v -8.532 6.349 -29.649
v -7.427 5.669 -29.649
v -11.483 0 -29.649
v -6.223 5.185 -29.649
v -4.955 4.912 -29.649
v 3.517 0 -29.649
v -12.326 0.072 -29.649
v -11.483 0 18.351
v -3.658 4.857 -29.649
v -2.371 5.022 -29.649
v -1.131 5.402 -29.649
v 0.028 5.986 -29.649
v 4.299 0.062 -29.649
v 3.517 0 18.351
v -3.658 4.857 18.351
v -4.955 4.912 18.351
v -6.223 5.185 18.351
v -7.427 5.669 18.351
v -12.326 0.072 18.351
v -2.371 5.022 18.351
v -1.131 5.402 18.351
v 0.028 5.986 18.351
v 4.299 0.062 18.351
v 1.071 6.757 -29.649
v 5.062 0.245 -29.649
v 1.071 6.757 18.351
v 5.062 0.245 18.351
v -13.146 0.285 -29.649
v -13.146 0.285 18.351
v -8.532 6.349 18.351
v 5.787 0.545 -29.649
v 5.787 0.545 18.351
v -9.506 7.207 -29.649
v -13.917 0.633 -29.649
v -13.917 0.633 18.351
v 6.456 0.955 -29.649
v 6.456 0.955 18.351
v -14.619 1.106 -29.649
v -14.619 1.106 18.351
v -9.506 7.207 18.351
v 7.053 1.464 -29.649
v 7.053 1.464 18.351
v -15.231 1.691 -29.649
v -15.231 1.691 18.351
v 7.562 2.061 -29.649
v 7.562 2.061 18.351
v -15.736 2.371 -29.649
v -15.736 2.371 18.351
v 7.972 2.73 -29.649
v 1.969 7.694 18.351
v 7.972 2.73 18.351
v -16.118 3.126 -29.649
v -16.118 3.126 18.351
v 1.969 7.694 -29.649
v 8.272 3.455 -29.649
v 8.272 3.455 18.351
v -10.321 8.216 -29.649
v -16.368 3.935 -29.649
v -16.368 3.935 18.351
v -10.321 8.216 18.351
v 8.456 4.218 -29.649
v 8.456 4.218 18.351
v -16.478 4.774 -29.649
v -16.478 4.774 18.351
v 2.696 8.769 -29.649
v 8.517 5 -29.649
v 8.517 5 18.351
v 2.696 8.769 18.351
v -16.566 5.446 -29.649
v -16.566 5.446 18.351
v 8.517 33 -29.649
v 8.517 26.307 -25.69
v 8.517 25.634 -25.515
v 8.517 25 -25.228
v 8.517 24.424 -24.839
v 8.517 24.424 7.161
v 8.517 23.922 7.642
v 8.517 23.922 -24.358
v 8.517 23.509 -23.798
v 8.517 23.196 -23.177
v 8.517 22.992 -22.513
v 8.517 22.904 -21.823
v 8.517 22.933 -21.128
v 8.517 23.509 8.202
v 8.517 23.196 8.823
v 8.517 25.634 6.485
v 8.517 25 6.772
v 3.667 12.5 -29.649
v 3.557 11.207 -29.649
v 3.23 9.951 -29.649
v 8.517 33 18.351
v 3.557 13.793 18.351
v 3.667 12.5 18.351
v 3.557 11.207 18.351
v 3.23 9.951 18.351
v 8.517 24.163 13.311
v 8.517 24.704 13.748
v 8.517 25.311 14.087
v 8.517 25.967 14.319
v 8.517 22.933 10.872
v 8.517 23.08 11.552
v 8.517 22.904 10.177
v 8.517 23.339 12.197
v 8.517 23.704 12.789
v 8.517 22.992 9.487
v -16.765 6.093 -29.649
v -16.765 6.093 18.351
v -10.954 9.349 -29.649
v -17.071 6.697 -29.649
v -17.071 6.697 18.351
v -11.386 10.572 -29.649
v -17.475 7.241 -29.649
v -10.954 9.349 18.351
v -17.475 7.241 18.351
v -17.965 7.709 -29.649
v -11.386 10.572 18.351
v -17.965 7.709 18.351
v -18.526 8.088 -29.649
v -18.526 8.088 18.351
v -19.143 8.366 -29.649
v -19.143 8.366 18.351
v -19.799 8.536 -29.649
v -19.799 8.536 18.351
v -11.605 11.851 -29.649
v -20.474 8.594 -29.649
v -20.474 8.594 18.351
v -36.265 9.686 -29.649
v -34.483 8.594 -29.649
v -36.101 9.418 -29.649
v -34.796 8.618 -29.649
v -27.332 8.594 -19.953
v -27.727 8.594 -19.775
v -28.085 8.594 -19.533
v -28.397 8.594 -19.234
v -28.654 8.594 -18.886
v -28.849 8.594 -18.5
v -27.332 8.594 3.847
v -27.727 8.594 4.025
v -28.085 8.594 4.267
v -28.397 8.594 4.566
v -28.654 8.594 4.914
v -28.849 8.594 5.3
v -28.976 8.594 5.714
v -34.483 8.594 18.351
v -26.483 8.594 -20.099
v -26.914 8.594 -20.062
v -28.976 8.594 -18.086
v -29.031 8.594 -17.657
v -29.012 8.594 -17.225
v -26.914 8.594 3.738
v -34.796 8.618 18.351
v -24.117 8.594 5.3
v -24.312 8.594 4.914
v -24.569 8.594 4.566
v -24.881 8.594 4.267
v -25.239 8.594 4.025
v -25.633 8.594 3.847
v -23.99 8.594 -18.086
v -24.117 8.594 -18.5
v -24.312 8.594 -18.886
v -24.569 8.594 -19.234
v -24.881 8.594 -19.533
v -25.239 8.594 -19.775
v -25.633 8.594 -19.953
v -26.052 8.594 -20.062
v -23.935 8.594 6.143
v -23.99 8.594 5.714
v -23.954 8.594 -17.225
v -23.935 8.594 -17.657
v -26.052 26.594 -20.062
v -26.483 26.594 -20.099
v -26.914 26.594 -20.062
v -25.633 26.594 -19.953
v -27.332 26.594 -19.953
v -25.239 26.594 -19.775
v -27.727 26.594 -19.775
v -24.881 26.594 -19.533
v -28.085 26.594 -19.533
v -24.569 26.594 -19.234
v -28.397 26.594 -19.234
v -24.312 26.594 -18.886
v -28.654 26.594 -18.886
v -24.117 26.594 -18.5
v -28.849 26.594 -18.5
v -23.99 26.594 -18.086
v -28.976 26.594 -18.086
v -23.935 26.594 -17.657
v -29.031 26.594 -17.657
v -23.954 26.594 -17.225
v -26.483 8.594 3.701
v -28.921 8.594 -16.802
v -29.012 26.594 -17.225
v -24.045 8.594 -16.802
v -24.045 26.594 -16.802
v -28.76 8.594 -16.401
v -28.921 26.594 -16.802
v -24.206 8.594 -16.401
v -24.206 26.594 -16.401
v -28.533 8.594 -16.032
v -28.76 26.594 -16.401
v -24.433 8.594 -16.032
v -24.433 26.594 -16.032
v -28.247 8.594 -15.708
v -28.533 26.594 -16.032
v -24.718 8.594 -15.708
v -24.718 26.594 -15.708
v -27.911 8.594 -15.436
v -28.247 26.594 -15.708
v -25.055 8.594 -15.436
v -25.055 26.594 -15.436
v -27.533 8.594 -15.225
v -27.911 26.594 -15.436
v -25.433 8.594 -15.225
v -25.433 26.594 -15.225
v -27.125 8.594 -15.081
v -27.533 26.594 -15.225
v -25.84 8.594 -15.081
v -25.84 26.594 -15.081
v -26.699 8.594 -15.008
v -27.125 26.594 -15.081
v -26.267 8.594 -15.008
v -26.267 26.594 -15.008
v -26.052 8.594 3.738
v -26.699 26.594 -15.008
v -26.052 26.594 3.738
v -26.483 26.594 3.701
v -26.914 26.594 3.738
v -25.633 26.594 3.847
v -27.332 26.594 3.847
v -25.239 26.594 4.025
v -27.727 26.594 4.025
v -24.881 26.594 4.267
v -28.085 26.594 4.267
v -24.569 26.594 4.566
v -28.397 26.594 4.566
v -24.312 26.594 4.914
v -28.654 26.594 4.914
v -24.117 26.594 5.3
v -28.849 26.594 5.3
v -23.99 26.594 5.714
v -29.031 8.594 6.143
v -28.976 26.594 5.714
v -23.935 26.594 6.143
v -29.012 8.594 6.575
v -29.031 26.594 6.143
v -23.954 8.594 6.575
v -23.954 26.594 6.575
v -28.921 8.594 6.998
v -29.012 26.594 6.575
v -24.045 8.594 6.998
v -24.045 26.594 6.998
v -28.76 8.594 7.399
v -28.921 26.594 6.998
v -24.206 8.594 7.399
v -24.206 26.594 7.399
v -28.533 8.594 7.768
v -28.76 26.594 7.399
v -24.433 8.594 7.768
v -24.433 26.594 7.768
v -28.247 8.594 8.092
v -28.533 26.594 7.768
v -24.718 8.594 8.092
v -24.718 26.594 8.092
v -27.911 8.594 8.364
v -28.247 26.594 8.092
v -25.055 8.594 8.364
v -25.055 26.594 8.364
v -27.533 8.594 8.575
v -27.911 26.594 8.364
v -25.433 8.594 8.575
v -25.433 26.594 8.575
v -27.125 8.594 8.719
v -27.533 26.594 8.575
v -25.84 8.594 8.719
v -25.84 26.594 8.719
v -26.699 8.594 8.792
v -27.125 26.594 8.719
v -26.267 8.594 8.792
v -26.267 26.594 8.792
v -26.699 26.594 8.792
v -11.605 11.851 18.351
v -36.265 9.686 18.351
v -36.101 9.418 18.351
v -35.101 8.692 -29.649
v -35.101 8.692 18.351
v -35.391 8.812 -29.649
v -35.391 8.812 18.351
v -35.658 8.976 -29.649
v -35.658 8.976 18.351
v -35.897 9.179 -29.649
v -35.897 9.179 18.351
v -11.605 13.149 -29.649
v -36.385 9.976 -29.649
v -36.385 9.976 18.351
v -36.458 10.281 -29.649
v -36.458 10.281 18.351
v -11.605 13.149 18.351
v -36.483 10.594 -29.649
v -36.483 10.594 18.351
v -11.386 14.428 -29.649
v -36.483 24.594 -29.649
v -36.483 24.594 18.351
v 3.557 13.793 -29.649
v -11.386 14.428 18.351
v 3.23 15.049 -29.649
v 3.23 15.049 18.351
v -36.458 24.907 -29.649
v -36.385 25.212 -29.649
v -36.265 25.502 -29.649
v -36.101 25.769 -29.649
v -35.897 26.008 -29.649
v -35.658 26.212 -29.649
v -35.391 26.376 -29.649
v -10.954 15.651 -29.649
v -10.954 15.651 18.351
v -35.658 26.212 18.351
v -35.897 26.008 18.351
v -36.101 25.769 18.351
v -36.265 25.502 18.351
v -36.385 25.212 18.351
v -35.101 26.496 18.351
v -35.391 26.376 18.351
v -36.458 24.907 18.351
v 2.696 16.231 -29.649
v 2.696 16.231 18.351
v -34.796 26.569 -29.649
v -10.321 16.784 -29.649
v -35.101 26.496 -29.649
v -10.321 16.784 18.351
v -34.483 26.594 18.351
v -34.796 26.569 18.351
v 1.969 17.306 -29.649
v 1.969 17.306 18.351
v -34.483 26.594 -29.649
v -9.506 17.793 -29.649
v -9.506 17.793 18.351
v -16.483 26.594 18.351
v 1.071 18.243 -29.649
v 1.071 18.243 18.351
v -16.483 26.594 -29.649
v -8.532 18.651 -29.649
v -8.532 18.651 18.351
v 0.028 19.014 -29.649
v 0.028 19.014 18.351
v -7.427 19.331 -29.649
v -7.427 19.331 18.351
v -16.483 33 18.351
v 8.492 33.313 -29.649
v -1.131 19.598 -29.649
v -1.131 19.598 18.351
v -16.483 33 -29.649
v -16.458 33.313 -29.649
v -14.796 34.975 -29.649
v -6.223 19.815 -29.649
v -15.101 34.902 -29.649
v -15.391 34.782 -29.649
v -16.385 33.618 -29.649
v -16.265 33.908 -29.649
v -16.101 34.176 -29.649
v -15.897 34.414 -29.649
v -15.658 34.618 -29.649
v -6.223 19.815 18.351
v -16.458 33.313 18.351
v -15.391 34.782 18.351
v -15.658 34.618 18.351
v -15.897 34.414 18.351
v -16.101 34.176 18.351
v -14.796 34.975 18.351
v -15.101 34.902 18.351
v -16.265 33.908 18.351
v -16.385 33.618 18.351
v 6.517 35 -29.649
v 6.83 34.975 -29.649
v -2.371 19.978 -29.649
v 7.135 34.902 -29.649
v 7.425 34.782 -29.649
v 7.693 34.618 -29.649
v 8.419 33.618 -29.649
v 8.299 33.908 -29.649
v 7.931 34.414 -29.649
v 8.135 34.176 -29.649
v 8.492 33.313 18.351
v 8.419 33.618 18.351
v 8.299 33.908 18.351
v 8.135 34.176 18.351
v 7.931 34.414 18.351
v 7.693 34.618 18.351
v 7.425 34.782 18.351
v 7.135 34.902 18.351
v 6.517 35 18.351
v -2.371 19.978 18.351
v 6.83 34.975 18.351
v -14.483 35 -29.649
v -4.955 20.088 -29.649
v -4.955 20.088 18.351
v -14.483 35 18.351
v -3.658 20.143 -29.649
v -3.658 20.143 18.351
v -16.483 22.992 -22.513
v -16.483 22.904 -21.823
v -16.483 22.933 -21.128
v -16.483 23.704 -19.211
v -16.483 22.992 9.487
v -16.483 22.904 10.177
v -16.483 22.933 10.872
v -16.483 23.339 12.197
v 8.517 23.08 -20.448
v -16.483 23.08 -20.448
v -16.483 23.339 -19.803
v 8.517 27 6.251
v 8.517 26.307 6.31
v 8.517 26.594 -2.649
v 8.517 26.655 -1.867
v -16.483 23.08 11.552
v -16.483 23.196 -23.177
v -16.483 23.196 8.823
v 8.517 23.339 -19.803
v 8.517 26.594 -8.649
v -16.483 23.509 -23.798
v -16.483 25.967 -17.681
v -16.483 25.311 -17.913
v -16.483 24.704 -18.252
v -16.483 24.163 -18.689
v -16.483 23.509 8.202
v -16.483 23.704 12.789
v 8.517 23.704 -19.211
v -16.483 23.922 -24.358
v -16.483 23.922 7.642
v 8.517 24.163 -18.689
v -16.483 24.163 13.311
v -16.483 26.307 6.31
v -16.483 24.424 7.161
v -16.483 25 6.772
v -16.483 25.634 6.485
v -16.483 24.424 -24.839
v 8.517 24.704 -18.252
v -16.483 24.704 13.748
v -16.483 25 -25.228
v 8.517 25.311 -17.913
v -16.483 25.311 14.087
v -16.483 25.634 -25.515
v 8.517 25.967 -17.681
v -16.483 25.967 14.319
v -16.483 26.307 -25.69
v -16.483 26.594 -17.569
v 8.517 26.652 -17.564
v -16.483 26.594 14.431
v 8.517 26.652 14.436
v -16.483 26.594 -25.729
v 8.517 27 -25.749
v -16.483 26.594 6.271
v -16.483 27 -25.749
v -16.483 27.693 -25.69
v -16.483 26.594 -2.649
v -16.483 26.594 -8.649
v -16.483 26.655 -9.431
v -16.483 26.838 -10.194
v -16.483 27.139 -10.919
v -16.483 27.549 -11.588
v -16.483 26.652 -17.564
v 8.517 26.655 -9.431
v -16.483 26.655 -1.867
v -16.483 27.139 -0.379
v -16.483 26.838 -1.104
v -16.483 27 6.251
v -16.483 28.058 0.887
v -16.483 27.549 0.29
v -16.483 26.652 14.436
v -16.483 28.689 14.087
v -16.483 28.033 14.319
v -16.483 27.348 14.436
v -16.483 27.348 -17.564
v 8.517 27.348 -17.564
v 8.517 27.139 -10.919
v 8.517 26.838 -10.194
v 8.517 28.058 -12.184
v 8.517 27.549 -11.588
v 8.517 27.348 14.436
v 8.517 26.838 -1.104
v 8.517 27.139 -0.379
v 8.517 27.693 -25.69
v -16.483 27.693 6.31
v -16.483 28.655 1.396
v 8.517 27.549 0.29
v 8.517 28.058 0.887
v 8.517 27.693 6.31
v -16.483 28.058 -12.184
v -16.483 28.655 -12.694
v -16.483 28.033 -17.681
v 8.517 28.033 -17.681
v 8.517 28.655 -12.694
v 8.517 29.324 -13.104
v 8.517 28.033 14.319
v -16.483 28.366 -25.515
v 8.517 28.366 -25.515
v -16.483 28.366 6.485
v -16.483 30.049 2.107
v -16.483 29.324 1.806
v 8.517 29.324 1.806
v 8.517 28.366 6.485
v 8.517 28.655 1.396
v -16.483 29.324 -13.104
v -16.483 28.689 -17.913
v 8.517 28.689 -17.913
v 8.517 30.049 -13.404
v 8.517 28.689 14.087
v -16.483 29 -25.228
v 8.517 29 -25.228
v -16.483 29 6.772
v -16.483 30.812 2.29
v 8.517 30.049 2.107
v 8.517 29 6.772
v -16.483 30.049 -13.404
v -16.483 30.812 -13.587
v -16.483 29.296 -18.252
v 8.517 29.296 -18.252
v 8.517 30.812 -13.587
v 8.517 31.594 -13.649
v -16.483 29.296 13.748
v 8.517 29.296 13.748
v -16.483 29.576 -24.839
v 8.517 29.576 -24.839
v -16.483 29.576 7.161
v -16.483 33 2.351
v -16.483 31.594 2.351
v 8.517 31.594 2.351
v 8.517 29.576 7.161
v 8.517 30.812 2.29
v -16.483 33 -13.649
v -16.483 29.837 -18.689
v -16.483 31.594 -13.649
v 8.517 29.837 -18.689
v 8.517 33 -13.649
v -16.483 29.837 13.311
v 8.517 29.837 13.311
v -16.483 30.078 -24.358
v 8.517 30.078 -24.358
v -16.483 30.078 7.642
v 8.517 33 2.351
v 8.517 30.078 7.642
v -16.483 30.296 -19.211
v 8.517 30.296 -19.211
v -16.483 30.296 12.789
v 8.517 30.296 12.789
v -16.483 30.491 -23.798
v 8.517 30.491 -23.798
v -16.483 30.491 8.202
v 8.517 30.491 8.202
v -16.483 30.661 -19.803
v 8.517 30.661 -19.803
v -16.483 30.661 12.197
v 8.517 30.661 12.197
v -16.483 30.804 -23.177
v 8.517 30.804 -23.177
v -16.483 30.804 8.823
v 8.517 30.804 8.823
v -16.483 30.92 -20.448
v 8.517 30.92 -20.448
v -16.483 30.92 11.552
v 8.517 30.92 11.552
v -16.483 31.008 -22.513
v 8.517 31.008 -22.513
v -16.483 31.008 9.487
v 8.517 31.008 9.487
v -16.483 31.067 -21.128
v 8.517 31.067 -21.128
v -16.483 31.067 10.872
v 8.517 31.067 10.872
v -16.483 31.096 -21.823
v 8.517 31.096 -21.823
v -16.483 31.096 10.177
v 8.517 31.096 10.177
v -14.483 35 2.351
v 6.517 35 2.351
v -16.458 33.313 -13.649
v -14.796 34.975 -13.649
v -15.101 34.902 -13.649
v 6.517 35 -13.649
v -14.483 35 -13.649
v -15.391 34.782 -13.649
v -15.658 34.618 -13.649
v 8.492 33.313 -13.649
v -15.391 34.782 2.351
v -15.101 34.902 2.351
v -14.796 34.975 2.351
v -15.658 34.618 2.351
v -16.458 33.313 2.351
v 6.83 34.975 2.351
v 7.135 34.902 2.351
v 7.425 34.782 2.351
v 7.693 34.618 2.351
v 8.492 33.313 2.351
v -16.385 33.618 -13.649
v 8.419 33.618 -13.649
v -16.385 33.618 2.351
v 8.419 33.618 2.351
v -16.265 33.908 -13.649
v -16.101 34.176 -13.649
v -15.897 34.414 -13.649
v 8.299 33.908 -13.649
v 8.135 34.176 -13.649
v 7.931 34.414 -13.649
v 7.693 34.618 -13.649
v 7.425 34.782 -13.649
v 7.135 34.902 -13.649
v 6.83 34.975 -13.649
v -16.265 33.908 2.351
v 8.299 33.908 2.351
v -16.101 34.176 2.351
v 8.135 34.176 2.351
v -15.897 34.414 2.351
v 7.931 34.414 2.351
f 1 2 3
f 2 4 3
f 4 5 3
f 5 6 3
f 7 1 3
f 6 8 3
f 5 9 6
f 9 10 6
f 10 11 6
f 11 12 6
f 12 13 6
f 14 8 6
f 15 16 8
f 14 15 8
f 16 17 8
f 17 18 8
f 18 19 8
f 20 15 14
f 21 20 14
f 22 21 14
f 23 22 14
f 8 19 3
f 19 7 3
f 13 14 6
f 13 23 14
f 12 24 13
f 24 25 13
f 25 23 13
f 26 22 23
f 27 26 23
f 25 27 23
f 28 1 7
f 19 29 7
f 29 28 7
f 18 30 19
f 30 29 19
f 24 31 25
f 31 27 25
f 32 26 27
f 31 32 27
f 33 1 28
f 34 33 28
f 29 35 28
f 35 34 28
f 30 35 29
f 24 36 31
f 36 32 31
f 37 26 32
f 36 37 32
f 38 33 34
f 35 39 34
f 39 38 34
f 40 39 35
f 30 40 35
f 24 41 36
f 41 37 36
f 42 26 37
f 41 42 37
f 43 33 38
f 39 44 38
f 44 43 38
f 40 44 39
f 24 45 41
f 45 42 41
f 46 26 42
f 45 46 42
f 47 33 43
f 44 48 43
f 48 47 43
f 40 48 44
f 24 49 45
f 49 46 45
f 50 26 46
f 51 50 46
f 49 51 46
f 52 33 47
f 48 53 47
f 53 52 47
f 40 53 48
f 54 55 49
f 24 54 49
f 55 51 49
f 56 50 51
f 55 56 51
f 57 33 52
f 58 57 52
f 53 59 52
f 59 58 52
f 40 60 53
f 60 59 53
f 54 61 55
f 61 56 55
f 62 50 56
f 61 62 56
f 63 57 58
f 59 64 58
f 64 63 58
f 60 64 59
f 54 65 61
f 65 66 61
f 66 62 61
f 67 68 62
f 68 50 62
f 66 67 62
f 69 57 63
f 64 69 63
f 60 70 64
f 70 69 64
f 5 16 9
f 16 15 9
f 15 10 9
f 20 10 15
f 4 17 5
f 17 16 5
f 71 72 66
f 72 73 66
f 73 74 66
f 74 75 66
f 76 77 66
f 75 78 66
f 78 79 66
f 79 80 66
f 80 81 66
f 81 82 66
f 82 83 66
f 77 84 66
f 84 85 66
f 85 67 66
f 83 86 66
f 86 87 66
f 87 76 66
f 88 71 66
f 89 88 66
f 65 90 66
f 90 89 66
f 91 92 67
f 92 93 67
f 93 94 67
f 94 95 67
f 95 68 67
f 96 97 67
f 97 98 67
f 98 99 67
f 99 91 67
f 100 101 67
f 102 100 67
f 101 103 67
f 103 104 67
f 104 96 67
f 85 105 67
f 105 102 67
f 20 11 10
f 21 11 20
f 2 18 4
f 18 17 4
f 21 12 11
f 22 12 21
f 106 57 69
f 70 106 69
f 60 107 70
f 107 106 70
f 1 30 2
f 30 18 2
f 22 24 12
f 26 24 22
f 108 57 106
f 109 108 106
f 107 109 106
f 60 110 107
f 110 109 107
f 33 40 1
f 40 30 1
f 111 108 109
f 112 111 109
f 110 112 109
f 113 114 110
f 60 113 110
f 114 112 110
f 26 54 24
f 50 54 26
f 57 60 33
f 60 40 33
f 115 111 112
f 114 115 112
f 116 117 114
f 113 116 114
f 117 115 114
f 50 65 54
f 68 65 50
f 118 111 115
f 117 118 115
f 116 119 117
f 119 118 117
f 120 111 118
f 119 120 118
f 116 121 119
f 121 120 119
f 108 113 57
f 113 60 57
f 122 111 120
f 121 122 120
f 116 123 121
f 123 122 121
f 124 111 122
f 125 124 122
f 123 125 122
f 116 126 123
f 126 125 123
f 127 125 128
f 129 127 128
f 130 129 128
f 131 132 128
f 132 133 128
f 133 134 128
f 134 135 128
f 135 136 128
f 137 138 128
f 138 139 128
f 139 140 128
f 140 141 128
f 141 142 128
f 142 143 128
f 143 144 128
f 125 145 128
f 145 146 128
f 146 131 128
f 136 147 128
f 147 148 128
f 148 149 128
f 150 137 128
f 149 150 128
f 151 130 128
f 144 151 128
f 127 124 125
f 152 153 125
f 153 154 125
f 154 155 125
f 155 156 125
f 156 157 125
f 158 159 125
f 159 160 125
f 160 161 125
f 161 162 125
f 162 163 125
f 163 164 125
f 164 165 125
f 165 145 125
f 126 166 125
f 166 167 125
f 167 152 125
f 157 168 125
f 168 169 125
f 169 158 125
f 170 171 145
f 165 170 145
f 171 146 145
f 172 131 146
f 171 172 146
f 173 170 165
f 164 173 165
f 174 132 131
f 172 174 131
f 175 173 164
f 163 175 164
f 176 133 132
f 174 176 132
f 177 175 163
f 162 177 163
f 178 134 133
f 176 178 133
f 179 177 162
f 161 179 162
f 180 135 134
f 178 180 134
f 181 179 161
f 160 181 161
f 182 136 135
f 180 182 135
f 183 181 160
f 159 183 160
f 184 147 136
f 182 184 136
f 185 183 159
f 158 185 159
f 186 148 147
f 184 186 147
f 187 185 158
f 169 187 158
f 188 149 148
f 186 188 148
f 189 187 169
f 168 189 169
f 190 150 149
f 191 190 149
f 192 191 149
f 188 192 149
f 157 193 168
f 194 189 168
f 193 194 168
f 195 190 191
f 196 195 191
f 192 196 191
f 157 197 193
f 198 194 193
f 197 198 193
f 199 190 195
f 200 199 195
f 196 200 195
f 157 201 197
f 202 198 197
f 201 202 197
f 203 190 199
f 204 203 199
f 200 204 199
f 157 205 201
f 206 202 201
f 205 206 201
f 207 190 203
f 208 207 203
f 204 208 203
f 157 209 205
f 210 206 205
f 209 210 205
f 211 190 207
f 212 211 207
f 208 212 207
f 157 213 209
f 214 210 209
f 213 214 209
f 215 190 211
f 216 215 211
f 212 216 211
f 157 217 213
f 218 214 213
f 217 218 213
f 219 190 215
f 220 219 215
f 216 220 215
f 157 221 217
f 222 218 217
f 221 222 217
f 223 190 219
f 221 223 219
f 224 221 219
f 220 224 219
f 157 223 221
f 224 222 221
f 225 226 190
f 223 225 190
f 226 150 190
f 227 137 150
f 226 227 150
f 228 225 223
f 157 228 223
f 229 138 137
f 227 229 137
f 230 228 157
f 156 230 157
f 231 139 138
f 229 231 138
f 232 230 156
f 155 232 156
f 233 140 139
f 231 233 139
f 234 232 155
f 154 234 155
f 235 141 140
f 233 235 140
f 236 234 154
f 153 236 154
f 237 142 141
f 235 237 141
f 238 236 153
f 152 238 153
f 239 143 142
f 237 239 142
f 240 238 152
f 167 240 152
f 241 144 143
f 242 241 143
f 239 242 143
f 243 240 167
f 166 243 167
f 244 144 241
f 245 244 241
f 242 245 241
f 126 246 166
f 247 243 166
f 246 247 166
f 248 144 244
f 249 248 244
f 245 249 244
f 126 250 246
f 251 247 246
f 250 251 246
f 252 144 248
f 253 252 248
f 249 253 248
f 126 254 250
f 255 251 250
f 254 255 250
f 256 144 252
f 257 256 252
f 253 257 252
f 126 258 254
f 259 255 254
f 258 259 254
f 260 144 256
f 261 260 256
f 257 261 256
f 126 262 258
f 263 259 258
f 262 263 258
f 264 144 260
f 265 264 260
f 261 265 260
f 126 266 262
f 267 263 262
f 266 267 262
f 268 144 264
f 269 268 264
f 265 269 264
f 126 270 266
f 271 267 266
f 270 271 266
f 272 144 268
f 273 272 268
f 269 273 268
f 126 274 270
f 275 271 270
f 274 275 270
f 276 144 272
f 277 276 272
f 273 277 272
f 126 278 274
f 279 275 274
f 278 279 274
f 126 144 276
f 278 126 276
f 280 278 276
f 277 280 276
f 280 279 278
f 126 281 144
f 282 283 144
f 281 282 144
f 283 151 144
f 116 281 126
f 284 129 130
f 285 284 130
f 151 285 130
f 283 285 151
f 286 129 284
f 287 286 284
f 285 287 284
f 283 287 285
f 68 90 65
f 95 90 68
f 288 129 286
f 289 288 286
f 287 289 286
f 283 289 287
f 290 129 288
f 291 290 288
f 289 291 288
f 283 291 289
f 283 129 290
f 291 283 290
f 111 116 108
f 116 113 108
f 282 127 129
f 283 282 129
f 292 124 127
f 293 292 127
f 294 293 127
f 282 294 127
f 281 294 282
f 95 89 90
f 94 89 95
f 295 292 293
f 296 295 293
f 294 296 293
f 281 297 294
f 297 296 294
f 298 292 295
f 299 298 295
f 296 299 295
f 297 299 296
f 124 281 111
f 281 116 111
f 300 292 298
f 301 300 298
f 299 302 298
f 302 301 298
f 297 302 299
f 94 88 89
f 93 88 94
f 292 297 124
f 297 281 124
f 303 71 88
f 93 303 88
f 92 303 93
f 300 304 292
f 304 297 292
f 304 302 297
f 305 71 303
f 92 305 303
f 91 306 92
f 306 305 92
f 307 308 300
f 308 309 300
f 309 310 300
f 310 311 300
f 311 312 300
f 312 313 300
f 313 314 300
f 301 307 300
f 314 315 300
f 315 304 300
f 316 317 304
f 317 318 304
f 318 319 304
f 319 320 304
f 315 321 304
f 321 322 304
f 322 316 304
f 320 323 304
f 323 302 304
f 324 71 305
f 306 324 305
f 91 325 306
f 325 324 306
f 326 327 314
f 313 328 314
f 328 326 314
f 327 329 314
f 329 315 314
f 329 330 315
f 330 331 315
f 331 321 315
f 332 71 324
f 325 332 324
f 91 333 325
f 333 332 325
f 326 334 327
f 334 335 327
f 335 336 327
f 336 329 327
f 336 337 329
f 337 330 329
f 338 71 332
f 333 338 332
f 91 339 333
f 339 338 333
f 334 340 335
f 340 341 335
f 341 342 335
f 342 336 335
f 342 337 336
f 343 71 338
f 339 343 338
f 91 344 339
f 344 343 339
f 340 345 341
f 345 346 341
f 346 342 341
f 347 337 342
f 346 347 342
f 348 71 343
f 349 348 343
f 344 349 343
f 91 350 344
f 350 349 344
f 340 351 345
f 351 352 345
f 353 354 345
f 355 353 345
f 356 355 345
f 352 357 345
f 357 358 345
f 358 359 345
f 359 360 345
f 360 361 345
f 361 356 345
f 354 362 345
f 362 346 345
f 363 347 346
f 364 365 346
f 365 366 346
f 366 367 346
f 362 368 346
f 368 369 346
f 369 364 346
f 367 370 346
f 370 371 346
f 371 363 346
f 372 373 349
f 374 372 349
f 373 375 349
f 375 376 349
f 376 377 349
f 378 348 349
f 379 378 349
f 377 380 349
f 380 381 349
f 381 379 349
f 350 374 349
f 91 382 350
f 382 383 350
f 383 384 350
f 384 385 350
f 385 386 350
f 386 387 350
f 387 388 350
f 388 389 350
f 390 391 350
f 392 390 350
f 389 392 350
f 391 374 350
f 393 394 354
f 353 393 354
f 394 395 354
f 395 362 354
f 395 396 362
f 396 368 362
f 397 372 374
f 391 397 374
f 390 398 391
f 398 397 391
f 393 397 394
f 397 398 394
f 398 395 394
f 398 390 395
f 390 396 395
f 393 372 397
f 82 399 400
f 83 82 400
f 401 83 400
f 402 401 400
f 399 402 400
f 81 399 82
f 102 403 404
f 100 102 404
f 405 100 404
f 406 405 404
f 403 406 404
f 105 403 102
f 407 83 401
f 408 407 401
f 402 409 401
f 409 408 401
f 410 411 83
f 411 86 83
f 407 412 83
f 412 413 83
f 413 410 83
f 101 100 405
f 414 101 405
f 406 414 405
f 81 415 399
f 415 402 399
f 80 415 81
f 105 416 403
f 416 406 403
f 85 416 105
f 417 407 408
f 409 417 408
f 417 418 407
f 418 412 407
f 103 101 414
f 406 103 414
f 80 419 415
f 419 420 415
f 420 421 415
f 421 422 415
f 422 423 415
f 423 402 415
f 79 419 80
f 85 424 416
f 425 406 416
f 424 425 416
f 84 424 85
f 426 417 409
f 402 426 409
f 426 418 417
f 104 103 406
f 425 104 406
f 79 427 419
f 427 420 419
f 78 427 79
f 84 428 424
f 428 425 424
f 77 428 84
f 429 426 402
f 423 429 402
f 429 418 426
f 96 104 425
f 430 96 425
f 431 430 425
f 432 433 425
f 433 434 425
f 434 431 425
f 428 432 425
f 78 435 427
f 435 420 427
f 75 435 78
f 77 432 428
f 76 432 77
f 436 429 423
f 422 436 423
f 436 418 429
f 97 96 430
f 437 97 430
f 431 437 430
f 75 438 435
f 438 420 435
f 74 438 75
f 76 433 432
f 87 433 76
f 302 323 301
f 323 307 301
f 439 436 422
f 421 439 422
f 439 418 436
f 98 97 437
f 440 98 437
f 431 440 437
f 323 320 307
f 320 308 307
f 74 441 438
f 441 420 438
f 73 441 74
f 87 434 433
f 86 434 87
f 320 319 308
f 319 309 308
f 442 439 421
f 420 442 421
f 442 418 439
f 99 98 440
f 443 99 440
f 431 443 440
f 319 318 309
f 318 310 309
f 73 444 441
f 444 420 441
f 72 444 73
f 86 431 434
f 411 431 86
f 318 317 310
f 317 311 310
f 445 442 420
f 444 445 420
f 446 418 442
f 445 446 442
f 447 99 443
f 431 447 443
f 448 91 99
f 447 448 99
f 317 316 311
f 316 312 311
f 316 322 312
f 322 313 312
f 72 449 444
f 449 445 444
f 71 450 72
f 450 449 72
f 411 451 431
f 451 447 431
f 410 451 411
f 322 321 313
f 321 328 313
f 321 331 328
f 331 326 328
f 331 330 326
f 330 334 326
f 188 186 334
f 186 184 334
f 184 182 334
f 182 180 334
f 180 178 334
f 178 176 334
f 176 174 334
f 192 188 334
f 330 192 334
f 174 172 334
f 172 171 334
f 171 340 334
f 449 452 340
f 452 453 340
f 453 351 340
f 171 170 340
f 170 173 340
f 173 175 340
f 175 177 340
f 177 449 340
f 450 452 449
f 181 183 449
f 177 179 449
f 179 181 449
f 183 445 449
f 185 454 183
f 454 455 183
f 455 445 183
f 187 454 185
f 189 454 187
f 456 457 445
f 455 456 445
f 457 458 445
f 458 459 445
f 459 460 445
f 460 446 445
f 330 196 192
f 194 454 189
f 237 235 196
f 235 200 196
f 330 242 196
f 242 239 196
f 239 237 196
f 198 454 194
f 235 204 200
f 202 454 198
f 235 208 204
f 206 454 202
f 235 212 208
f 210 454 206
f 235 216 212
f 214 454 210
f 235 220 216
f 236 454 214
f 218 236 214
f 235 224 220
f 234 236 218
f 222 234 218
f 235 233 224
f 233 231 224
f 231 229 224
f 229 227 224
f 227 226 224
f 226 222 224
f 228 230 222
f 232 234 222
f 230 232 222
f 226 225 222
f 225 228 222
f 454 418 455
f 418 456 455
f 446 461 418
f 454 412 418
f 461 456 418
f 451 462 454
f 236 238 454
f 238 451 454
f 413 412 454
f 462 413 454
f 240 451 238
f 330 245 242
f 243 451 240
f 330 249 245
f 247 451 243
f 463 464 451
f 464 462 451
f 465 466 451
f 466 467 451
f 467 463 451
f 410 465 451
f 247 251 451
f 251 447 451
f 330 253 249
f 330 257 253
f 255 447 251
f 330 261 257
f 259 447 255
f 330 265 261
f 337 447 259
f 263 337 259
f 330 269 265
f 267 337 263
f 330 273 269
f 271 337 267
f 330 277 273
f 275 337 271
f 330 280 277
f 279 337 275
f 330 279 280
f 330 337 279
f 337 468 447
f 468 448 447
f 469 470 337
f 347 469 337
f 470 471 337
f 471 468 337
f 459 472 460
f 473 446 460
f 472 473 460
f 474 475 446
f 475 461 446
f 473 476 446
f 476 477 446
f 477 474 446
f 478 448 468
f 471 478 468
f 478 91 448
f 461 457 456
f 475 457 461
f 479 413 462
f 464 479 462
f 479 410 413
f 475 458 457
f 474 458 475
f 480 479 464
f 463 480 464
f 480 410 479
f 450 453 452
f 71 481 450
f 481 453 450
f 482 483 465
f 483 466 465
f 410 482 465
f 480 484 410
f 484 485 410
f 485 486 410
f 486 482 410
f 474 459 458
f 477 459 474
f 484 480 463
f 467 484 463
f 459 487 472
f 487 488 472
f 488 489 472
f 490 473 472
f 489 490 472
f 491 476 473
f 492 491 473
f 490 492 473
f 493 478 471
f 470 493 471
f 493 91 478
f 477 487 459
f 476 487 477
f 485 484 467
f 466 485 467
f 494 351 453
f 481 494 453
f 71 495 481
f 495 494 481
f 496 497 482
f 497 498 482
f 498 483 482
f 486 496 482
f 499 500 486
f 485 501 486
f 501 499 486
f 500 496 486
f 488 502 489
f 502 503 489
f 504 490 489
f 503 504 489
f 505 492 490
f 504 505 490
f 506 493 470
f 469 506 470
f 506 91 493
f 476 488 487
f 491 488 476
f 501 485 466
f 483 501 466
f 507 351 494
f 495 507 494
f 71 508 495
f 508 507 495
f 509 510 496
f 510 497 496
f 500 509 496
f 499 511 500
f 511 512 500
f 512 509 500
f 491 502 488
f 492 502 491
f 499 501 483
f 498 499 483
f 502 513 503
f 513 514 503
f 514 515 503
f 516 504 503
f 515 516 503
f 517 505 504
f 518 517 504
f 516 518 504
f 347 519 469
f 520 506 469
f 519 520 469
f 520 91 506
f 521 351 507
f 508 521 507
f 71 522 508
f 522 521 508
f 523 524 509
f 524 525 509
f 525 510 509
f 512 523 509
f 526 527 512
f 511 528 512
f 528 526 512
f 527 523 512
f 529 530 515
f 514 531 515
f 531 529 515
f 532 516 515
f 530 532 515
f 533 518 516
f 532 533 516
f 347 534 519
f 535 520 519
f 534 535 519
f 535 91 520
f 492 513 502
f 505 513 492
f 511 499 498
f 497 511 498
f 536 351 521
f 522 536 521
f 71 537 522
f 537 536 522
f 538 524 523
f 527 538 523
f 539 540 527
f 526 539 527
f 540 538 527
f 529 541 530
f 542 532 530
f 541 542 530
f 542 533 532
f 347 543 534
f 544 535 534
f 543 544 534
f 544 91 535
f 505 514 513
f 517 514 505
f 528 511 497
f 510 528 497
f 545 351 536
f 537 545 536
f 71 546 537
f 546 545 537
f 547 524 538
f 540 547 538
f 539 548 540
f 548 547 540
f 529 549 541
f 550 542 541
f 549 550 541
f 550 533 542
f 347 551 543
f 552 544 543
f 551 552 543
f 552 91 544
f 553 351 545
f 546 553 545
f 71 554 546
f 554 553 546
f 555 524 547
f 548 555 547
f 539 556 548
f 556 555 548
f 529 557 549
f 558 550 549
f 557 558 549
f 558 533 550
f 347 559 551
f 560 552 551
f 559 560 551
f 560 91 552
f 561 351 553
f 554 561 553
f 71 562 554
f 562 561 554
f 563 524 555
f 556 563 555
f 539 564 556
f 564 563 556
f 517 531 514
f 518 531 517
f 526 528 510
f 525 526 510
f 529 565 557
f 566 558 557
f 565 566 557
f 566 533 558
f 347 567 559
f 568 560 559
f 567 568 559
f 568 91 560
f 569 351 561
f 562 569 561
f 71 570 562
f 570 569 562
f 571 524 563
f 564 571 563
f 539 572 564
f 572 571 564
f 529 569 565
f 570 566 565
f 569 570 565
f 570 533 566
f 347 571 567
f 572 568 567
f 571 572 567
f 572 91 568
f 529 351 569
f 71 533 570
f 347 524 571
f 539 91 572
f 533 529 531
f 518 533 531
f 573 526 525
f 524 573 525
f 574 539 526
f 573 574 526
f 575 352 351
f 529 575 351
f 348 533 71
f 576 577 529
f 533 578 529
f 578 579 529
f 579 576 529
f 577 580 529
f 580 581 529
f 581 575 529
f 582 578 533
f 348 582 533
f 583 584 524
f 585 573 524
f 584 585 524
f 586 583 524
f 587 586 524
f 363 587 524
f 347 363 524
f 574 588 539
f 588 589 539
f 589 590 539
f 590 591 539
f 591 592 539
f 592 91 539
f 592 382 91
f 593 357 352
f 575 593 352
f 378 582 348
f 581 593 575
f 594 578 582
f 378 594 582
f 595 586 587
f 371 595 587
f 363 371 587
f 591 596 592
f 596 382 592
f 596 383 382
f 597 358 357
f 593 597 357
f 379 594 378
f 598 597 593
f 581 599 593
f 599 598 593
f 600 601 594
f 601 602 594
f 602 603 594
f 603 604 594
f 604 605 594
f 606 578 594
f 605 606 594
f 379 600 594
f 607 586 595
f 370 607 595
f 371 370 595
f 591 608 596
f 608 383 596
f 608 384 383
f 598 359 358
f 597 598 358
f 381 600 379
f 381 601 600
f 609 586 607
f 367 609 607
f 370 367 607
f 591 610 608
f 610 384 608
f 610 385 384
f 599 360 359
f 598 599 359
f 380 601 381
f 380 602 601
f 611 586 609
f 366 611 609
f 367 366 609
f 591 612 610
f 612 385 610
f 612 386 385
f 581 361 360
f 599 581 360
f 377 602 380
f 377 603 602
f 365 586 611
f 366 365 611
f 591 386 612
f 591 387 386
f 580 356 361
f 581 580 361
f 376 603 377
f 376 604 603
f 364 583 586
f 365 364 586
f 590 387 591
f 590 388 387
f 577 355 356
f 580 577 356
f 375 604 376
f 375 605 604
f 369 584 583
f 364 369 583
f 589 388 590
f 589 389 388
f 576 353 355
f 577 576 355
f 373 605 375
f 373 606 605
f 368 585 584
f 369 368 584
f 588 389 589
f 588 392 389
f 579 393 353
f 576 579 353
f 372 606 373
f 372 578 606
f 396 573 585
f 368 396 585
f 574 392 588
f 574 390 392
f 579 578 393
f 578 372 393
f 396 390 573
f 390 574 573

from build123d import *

# Parameters (mm, degrees)
SKETCH_1_W          = 25
SKETCH_1_H          = 48
EXTRUDE_1_DEPTH     = 25
SKETCH_2_R          = 7.65
CUT_EXTRUDE_1_DEPTH = 57.57461336
SKETCH_3_W          = 25
SKETCH_3_H          = 48
EXTRUDE_2_DEPTH     = 10
SKETCH_4_R          = 4.1
CUT_EXTRUDE_2_DEPTH = 53.240311871
FILLET_1_R          = 5
SKETCH_6_W          = 48
SKETCH_6_H          = 18
EXTRUDE_3_DEPTH     = 20
SKETCH_7_R          = 2.55
CUT_EXTRUDE_3_DEPTH = 54.919821703
FILLET_3_R          = 4
SKETCH_8_W          = 25
SKETCH_8_H          = 16
CUT_EXTRUDE_4_DEPTH = 8.406306785
FILLET_4_R          = 5
FILLET_5_R          = 2
FILLET_6_R          = 2


with BuildPart() as part:
    # 草图1 → 凸台-拉伸1 (new body)
    with BuildSketch(Plane(origin=(0, 0, 0), x_dir=(1, 0, 0), z_dir=(0, 1, 0))):
        with Locations((-3.982926829, 5.648780488)):
            Rectangle(SKETCH_1_W, SKETCH_1_H)
    extrude(amount=EXTRUDE_1_DEPTH)

    # 草图2 → 切除-拉伸1 (cut, through all)
    with BuildSketch(Plane.XY.offset(18.351219512)):
        with Locations((-3.982926829, 12.5)):
            Circle(SKETCH_2_R)
    extrude(amount=-CUT_EXTRUDE_1_DEPTH, mode=Mode.SUBTRACT)

    # 草图3 → 凸台-拉伸2 (add)
    with BuildSketch(Plane(origin=(0, 25, 0), x_dir=(1, 0, 0), z_dir=(0, 1, 0))):
        with Locations((-3.982926829, 5.648780488)):
            Rectangle(SKETCH_3_W, SKETCH_3_H)
    extrude(amount=EXTRUDE_2_DEPTH)

    # 草图4 → 切除-拉伸2 (cut, through all)
    with BuildSketch(Plane(origin=(8.517073171, 0, 0), x_dir=(0, 0, -1), z_dir=(1, 0, 0))):
        with Locations((-10.351219512, 27)):
            Circle(SKETCH_4_R)
        with Locations((21.648780488, 27)):
            Circle(SKETCH_4_R)
    extrude(amount=-CUT_EXTRUDE_2_DEPTH, mode=Mode.SUBTRACT)

    # 圆角1
    fillet_1_edges = [part.edges().sort_by_distance(p)[0] for p in [
        (8.517073171, 0, -5.648780488),
        (-16.482926829, 0, -5.648780488),
    ]]
    fillet(fillet_1_edges, radius=FILLET_1_R)

    # 草图6 → 凸台-拉伸3 (add)
    with BuildSketch(Plane.ZY.offset(16.482926829)):
        with Locations((-5.648780488, 17.593693215)):
            Rectangle(SKETCH_6_W, SKETCH_6_H)
    extrude(amount=EXTRUDE_3_DEPTH)

    # 草图7 → 切除-拉伸3 (cut, through all)
    with BuildSketch(Plane.XZ.offset(-8.593693215)):
        with Locations(Location((-26.482926829, 6.251219512, 0), (0, 0, 270))):
            Circle(SKETCH_7_R)
        with Locations(Location((-26.482926829, -17.548780488, 0), (0, 0, 270))):
            Circle(SKETCH_7_R)
    extrude(amount=-CUT_EXTRUDE_3_DEPTH, mode=Mode.SUBTRACT)

    # 圆角3
    fillet_3_edges = [part.edges().sort_by_distance(p)[0] for p in [
        (-16.482926829, 8.593693215, -5.648780488),
    ]]
    fillet(fillet_3_edges, radius=FILLET_3_R)

    # 草图8 → 切除-拉伸4 (cut)
    with BuildSketch(Plane(origin=(0, 35, 0), x_dir=(1, 0, 0), z_dir=(0, 1, 0))):
        with Locations((-3.982926829, 5.648780488)):
            Rectangle(SKETCH_8_W, SKETCH_8_H)
    extrude(amount=-CUT_EXTRUDE_4_DEPTH, mode=Mode.SUBTRACT)

    # 圆角4
    fillet_4_edges = [part.edges().sort_by_distance(p)[0] for p in [
        (-3.982926829, 26.593693215, 2.351219512),
        (-3.982926829, 26.593693215, -13.648780488),
    ]]
    fillet(fillet_4_edges, radius=FILLET_4_R)

    # 圆角5
    fillet_5_edges = [part.edges().sort_by_distance(p)[0] for p in [
        (-36.482926829, 26.593693215, -5.648780488),
        (-36.482926829, 8.593693215, -5.648780488),
    ]]
    fillet(fillet_5_edges, radius=FILLET_5_R)

    # 圆角6
    fillet_6_edges = [part.edges().sort_by_distance(p)[0] for p in [
        (-16.482926829, 35, -21.648780488),
        (8.517073171, 35, 10.351219512),
        (-16.482926829, 35, 10.351219512),
        (8.517073171, 35, -21.648780488),
    ]]
    fillet(fillet_6_edges, radius=FILLET_6_R)


solid = part.part
